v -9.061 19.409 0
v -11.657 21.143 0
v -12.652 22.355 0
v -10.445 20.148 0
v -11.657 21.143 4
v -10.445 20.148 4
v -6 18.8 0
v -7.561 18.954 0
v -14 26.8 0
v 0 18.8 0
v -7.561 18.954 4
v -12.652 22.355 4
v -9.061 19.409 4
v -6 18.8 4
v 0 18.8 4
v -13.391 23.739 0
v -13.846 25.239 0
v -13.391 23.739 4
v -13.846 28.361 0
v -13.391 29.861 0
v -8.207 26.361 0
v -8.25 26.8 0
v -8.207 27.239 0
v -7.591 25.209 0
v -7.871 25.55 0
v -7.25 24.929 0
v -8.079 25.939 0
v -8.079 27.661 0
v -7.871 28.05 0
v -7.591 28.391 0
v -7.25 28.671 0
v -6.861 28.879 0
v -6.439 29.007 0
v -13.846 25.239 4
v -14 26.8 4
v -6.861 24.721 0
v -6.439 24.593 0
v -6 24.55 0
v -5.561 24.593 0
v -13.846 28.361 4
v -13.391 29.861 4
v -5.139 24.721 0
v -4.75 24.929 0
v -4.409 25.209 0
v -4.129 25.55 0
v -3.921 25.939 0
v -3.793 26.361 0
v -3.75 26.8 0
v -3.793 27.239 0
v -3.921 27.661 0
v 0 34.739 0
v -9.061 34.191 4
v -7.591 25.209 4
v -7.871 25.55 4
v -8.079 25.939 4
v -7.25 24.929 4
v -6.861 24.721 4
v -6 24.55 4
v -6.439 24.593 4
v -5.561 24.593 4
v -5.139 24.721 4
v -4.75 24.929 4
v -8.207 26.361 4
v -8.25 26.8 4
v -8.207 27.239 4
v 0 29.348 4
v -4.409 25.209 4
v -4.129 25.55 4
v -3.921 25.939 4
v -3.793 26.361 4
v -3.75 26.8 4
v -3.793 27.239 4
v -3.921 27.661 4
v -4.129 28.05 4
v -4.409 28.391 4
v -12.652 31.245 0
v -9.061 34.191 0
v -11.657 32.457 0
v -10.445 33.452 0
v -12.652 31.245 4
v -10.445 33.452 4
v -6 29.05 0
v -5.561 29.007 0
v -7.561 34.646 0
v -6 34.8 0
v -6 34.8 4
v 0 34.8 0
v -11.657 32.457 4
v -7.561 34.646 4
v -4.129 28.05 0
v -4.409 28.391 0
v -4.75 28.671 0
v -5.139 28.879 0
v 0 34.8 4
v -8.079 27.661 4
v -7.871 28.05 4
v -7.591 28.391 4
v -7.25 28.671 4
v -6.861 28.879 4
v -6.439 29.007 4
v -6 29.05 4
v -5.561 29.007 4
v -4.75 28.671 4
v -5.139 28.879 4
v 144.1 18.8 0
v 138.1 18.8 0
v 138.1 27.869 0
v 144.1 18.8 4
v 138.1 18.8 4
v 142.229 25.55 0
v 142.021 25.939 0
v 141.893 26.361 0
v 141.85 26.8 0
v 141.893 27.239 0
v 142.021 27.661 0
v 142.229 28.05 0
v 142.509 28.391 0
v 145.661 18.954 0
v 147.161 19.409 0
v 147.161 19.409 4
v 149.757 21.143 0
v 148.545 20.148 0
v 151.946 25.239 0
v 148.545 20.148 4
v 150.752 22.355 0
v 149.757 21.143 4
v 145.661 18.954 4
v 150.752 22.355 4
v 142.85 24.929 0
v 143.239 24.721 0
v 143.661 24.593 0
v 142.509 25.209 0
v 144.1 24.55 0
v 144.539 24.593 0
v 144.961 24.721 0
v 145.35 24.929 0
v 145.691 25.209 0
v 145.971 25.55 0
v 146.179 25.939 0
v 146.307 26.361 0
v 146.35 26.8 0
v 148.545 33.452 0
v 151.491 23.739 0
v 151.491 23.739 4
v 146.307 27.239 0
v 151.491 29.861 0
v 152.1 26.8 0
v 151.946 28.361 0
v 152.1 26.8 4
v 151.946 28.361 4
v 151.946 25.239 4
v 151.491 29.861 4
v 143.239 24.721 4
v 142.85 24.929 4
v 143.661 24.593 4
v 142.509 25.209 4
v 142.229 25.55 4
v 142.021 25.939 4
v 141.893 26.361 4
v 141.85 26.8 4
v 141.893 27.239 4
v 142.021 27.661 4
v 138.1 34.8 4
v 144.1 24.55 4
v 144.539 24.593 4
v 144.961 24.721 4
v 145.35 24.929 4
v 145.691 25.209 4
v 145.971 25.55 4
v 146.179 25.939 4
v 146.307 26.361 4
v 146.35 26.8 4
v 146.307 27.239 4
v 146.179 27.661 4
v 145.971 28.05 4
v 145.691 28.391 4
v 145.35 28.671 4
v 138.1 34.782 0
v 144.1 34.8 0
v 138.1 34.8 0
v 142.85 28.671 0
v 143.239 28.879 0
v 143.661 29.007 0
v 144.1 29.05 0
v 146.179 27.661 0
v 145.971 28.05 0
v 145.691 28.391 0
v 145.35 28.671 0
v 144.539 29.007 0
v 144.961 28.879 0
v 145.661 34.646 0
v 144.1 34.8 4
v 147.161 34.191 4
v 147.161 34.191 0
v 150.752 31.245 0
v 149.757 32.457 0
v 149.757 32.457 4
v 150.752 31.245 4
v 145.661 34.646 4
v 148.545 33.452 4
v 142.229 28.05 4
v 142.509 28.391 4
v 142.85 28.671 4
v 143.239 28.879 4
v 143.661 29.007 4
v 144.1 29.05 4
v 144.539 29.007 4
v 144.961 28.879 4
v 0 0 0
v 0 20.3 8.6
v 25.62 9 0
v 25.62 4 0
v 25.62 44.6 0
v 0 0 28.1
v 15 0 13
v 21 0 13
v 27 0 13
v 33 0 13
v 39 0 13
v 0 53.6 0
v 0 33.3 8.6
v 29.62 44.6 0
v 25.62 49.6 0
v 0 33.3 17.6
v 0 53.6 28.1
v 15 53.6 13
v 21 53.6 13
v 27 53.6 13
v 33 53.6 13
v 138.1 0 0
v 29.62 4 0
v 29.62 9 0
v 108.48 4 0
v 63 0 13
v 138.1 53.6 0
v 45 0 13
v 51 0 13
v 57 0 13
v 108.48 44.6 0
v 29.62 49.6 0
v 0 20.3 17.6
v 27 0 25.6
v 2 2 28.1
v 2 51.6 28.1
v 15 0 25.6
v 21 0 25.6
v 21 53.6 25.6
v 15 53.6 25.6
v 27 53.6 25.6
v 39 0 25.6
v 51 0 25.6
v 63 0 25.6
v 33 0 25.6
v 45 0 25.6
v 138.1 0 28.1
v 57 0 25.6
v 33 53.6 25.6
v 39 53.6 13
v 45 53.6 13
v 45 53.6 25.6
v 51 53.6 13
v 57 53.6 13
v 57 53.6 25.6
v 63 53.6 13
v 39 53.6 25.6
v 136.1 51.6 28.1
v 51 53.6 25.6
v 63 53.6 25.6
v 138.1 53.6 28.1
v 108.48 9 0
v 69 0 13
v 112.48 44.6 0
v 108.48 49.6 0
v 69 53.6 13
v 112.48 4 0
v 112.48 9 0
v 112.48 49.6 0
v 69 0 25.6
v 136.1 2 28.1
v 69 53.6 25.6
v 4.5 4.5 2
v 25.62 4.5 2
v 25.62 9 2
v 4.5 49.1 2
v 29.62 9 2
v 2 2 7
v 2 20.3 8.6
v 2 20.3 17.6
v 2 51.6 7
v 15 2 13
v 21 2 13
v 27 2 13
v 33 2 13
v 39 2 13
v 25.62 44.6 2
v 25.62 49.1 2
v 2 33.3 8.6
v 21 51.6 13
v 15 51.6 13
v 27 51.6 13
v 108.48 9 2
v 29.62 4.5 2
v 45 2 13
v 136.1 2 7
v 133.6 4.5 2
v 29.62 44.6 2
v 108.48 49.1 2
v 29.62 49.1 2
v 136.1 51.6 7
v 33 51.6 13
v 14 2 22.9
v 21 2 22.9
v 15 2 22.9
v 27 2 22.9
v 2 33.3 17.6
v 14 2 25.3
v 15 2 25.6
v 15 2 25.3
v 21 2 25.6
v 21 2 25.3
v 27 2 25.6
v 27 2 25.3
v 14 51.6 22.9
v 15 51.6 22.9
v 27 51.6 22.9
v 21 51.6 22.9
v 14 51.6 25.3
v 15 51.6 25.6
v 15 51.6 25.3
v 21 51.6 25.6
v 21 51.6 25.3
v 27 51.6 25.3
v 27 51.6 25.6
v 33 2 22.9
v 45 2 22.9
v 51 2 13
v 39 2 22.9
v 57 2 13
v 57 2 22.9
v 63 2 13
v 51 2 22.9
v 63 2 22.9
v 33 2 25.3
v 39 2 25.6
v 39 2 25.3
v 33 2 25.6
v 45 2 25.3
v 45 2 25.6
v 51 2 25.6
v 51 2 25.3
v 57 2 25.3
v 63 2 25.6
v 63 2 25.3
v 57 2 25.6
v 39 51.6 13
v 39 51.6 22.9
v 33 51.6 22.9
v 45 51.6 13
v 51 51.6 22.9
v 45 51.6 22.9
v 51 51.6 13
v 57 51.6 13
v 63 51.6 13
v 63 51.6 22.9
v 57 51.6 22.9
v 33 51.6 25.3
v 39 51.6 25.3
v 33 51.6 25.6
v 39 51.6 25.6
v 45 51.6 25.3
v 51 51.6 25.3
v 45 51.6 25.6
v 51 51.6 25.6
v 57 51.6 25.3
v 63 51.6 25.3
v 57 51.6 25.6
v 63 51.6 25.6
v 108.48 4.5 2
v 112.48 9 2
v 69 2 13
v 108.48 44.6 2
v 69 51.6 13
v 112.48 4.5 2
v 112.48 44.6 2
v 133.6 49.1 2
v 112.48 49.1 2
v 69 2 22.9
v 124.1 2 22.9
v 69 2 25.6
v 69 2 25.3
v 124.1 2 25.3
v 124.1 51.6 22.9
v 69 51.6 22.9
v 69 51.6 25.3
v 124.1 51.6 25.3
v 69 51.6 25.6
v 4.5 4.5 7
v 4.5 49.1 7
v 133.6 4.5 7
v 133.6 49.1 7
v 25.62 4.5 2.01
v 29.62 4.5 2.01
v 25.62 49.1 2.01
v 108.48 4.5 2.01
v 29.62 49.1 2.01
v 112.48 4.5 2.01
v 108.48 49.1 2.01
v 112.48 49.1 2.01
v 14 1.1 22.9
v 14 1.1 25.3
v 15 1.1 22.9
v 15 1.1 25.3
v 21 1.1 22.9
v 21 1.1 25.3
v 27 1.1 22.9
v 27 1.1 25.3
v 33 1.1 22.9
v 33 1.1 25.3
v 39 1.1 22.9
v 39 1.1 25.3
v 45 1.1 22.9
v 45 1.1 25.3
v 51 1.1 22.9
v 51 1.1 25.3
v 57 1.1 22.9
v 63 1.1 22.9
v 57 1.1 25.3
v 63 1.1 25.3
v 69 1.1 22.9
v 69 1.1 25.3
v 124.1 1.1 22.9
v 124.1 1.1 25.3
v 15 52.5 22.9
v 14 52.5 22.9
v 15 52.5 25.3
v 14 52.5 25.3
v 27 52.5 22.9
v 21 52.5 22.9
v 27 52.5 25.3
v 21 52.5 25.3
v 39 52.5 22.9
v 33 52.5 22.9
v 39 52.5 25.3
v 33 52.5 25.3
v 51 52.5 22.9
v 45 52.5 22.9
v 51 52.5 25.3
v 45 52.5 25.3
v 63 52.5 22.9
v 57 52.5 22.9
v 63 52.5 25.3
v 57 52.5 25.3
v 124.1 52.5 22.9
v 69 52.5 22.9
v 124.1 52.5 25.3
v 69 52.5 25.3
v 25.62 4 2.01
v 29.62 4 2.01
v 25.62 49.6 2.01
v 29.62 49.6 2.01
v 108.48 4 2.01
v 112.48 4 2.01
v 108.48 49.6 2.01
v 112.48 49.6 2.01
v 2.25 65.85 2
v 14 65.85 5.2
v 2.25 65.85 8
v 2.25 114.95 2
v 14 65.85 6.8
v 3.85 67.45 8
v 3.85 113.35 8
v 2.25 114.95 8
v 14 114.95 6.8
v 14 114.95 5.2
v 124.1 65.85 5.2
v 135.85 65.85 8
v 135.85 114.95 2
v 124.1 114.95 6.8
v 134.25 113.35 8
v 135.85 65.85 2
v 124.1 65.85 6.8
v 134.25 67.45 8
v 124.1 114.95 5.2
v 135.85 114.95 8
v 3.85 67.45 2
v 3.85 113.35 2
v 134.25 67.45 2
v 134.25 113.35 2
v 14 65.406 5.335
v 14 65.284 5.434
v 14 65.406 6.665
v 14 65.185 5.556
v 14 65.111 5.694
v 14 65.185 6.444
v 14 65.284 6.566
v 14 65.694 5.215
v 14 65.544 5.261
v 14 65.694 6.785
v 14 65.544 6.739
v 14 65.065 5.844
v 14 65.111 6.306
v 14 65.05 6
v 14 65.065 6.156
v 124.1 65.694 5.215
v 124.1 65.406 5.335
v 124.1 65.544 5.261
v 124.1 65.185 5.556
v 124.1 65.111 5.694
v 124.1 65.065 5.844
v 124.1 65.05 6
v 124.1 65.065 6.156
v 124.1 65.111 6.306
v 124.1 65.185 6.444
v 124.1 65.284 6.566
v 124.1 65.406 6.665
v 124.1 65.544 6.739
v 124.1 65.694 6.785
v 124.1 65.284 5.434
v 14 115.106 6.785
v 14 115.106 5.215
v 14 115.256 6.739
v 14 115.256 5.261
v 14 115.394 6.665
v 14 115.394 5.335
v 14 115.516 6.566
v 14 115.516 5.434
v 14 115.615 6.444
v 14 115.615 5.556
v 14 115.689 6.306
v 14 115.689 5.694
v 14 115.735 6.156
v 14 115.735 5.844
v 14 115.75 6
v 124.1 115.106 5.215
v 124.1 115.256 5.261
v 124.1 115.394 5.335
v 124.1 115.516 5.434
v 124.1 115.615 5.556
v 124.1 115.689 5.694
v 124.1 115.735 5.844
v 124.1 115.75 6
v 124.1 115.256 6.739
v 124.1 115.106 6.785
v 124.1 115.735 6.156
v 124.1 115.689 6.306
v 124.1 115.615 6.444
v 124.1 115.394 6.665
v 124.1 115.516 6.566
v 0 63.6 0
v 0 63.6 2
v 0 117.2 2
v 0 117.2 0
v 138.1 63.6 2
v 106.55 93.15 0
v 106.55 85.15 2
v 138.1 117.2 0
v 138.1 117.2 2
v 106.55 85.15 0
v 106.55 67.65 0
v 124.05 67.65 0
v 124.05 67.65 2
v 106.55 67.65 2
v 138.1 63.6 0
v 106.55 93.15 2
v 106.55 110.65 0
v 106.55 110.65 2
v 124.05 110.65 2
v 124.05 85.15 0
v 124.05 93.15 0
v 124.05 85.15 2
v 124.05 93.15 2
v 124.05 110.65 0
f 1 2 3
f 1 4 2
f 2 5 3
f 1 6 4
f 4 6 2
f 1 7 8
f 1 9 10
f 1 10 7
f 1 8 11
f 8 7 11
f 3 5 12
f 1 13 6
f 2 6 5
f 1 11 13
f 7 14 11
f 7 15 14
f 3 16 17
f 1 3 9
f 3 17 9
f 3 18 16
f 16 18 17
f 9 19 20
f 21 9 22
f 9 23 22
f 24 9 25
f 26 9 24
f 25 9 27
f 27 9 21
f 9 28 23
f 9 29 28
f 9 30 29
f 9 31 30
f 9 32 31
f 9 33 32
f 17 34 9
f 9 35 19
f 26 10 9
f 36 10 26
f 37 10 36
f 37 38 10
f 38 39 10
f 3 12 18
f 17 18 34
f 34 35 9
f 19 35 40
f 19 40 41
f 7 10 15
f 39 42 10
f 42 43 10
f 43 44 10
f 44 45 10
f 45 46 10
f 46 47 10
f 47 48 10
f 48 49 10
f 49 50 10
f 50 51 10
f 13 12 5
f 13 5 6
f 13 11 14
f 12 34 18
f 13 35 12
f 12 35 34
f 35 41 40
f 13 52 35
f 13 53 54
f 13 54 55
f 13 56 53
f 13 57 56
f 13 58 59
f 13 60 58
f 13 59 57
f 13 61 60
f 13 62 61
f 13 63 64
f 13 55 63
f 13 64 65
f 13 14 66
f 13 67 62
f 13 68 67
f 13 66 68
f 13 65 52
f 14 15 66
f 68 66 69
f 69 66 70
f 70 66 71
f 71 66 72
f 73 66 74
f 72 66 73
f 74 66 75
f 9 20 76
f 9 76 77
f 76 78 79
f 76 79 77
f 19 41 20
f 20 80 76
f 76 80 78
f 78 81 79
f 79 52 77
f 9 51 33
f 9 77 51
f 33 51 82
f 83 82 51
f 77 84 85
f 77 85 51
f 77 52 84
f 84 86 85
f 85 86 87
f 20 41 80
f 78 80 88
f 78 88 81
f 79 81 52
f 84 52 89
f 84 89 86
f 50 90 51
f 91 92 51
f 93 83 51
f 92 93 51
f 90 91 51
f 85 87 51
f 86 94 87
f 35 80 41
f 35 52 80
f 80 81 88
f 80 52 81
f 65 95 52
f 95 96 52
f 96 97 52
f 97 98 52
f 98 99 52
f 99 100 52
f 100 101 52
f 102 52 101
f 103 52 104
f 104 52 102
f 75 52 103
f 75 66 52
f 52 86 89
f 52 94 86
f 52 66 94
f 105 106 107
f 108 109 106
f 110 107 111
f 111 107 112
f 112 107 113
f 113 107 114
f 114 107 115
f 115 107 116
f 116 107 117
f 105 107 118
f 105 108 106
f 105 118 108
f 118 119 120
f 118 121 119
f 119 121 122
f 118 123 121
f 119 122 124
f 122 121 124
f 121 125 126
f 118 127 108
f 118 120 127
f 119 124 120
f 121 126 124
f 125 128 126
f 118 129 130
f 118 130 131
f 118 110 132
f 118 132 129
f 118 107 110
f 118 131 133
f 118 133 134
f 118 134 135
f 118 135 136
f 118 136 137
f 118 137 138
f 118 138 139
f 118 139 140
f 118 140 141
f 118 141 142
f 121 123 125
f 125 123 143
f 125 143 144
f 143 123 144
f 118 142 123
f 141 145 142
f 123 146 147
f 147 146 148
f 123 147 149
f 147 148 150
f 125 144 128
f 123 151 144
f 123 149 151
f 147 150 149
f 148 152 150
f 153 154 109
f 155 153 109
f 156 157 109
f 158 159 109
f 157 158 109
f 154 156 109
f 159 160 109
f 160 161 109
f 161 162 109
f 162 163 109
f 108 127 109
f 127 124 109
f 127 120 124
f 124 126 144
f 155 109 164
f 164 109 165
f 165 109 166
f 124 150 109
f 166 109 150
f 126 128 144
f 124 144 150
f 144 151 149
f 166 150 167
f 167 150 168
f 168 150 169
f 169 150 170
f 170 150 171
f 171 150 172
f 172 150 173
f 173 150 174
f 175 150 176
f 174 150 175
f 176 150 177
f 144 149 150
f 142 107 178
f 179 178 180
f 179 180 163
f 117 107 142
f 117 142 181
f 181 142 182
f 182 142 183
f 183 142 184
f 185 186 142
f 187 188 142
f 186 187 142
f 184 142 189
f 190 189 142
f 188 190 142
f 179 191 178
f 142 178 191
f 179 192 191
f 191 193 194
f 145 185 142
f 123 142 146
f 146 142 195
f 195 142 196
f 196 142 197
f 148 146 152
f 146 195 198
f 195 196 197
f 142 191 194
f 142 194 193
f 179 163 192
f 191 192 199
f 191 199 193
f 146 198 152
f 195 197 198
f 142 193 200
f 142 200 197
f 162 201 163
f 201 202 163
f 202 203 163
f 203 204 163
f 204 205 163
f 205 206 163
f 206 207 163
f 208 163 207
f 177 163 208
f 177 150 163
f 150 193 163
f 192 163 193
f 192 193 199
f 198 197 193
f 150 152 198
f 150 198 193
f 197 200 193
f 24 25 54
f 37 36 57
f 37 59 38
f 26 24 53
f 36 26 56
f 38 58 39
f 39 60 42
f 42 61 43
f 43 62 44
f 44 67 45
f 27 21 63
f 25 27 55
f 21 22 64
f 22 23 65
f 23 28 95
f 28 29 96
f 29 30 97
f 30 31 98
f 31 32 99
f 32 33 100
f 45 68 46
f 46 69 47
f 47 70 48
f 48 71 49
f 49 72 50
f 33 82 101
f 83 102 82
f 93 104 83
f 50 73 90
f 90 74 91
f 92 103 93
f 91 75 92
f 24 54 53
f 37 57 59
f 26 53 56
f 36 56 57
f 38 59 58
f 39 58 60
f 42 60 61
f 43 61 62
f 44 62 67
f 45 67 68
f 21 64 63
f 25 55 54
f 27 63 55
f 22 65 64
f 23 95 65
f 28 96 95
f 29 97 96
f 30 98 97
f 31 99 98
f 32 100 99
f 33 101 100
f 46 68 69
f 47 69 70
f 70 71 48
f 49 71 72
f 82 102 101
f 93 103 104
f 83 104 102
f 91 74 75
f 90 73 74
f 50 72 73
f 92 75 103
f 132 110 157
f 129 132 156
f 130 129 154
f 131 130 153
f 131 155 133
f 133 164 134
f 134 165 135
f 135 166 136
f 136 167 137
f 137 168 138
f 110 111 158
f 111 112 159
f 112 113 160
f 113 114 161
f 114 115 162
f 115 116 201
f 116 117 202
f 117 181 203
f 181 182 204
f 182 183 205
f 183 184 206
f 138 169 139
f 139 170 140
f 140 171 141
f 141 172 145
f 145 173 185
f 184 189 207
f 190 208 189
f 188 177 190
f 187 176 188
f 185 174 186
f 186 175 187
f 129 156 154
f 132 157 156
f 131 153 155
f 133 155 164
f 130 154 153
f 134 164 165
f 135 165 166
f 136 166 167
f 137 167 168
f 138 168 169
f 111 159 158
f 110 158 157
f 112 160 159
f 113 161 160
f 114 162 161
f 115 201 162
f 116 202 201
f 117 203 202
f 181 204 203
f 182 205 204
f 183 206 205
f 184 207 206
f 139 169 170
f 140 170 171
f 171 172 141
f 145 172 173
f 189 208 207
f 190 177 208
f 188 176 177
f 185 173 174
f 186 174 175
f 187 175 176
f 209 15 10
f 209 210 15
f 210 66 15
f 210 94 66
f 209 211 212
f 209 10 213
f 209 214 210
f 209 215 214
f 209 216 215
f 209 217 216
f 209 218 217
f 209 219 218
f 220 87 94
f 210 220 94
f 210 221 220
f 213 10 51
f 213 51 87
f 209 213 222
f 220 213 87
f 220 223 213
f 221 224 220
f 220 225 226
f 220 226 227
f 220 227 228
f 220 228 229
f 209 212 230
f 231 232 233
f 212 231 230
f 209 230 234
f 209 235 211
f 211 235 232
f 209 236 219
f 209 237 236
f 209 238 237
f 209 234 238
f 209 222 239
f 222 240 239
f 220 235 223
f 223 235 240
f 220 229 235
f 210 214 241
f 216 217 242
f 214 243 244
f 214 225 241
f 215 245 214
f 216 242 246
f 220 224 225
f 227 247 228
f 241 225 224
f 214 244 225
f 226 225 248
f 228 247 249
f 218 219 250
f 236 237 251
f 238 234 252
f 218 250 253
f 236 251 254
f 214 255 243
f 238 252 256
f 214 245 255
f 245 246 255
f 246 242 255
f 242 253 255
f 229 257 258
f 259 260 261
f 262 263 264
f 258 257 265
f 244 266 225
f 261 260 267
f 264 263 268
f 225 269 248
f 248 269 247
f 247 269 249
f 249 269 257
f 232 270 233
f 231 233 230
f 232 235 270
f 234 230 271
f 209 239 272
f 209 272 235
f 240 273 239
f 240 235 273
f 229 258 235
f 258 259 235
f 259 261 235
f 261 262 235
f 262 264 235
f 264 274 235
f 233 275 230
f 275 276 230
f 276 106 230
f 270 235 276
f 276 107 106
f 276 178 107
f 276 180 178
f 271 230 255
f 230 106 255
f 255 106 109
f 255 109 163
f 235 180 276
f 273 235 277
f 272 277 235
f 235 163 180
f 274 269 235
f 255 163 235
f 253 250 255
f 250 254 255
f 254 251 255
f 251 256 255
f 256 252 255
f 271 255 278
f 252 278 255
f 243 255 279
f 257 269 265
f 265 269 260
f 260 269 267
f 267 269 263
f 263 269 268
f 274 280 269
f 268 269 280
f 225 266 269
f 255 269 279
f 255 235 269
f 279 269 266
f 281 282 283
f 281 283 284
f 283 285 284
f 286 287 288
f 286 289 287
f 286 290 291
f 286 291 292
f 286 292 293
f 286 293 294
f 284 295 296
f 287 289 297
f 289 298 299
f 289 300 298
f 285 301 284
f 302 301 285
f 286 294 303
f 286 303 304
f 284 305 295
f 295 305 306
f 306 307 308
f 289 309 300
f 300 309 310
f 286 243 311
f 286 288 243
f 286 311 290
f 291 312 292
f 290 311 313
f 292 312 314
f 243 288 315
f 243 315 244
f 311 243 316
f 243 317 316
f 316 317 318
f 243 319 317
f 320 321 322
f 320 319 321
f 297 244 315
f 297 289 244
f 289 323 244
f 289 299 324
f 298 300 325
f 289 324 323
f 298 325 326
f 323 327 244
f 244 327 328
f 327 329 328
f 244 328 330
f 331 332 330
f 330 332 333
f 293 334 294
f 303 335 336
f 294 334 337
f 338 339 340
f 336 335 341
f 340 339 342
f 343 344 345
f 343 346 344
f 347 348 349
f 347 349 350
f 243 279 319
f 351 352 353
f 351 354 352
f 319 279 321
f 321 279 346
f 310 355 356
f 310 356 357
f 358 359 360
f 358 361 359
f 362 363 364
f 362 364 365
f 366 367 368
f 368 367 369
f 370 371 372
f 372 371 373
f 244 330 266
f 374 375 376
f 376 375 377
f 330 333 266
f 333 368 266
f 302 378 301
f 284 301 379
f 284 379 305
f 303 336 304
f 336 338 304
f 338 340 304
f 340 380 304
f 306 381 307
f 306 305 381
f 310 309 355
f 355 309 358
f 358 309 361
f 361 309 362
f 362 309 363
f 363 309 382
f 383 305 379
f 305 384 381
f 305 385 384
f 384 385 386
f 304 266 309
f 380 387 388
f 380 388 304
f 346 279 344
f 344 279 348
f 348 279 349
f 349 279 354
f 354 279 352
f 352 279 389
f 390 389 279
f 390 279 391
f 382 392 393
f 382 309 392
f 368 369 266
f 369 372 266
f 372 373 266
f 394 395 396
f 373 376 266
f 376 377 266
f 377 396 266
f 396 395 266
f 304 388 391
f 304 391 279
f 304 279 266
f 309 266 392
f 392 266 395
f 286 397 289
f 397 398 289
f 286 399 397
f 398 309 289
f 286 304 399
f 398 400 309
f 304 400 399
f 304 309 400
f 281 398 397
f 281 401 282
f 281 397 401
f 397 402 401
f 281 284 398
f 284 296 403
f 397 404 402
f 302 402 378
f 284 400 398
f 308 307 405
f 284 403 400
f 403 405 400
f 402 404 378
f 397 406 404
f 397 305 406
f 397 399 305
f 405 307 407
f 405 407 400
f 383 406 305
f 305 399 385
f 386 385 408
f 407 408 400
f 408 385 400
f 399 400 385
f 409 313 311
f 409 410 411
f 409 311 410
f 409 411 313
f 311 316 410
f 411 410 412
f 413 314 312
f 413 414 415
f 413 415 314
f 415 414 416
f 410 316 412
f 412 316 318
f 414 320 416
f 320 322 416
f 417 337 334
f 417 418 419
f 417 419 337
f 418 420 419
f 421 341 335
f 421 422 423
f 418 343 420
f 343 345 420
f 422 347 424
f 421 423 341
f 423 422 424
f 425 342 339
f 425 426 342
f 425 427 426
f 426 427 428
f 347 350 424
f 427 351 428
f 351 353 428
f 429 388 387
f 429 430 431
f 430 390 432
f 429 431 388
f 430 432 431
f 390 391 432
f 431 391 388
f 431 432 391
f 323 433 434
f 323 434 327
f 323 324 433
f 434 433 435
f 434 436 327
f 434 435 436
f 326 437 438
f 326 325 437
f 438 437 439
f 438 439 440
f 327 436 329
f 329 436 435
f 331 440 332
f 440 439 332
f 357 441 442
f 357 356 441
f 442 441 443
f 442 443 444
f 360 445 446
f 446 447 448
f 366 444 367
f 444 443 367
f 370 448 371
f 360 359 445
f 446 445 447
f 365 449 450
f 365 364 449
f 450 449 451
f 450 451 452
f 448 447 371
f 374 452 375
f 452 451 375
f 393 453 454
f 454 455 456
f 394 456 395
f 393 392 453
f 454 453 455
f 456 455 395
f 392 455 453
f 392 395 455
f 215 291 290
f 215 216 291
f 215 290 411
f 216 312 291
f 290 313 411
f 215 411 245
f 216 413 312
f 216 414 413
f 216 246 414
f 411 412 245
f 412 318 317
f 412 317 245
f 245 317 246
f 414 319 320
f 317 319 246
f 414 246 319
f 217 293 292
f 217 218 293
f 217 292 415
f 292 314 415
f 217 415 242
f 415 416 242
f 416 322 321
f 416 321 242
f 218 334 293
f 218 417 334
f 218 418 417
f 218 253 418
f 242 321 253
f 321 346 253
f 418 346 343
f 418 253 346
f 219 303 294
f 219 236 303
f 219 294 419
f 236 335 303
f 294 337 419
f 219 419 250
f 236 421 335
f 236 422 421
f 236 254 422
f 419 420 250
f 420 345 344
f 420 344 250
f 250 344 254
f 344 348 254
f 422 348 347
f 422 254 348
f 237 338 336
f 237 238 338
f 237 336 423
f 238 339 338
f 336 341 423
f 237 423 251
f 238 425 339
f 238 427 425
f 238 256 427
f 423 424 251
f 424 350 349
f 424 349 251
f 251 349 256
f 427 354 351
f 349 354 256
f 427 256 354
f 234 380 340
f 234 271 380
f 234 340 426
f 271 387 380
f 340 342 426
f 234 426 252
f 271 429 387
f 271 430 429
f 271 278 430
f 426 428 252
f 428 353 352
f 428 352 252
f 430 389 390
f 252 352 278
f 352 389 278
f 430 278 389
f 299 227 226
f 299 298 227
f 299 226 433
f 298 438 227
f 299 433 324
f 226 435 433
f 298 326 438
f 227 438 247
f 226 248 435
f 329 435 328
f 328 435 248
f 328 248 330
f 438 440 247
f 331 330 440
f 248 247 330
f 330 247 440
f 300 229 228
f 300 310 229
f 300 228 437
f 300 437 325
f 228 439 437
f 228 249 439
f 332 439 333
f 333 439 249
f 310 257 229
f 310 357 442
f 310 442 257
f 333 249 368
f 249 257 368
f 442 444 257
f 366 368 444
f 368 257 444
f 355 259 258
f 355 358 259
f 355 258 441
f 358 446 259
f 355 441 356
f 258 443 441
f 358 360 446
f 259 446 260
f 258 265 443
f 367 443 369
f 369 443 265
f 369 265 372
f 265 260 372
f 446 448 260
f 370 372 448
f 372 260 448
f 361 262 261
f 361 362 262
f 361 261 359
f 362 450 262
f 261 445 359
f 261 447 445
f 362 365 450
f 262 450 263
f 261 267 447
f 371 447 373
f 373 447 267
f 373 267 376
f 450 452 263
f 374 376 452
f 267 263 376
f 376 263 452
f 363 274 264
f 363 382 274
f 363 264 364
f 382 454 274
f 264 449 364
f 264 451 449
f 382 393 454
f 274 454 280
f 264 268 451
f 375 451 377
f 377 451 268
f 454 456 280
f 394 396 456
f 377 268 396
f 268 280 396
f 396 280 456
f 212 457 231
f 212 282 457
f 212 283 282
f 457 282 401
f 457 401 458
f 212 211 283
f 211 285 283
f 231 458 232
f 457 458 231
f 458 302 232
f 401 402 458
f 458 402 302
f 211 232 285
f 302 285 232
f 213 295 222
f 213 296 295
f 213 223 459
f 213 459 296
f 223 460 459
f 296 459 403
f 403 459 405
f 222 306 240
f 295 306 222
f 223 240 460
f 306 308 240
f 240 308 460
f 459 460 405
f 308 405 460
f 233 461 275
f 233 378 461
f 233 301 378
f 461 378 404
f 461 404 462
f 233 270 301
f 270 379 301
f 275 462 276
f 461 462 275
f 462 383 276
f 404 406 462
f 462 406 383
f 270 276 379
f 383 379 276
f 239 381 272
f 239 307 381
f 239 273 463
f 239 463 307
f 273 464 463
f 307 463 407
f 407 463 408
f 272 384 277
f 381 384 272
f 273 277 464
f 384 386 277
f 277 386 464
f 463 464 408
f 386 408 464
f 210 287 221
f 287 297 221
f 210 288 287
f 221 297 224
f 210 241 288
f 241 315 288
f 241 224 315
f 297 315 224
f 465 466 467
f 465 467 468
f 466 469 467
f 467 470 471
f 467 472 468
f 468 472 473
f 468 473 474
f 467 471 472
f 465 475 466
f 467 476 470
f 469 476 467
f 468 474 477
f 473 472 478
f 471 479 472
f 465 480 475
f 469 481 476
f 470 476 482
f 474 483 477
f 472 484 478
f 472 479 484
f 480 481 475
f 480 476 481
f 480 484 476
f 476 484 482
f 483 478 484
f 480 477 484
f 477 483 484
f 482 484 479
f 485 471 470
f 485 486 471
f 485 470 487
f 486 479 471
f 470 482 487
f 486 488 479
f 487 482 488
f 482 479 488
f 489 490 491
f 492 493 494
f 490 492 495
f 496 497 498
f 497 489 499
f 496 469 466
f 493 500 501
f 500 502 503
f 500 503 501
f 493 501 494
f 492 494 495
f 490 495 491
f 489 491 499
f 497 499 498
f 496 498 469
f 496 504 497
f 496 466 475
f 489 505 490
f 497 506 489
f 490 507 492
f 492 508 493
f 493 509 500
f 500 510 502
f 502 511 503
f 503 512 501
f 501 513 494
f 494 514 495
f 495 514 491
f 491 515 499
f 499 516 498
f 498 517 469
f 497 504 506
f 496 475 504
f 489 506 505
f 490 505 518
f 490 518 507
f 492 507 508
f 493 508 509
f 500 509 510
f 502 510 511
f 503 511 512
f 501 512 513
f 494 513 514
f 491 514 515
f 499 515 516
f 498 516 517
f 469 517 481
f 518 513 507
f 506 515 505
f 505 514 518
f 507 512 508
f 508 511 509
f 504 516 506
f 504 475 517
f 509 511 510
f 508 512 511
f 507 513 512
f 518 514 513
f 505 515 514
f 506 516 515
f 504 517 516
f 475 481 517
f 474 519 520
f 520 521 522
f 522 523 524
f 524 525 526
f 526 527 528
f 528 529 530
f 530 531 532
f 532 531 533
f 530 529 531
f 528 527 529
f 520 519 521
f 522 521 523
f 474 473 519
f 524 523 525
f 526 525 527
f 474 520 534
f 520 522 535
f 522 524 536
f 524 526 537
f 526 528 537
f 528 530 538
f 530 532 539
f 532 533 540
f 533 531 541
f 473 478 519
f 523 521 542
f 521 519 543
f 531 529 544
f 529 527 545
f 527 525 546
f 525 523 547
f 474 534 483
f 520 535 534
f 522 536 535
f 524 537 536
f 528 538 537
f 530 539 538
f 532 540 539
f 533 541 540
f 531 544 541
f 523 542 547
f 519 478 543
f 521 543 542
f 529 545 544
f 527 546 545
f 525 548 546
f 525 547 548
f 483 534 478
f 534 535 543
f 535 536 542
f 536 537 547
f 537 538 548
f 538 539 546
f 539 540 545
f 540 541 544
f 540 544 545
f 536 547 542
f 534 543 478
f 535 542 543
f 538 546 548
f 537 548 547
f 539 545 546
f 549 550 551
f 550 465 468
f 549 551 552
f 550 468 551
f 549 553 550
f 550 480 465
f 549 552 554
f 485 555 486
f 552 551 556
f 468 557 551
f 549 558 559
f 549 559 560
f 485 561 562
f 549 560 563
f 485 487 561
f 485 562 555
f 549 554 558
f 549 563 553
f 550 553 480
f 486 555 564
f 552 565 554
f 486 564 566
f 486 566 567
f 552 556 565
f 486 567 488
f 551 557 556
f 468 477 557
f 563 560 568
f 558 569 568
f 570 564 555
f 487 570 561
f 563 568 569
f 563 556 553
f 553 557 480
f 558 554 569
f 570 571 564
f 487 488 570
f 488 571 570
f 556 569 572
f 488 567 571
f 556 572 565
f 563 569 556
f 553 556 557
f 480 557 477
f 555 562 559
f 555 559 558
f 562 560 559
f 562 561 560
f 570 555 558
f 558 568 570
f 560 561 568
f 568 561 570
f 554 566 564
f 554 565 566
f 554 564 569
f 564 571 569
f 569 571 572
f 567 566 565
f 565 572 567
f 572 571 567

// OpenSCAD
// Desk MITM enclosure — parametric OpenSCAD
// Board: 132.5 x 48 perfboard, ESP32 USB out one end wall, two RJ45 jacks
// facing UP through the lid at the other end, solder pins protruding below.
//
// Coordinates: X = board length (USB end at x=0, RJ45 end at x=max),
//              Y = board width, Z = up. All openings are parametric — print,
//              test-fit, nudge the offending variable, reprint the one part.
//
// Render:  openscad -D part=\"base\" -o base.stl desk-case.scad
//          openscad -D part=\"lid\"  -o lid.stl  desk-case.scad
// Preview: open in OpenSCAD GUI, set `part` below to "base", "lid" or "both".

part = "both";  // "base" | "lid" | "both" (preview)

/* ---------- board ---------- */
board_l      = 132.5;  // perfboard length
board_w      = 48.0;   // perfboard width
board_th     = 1.6;    // perfboard thickness
pins_below   = 5.0;    // clearance under board for solder pins/wires
above_board  = 24.0;   // tallest thing above board top (29 total - ~5 below)

/* ---------- case ---------- */
wall         = 2.0;    // wall thickness
floor_th     = 2.0;
lid_th       = 2.0;
clearance    = 0.8;    // gap around the board (FDM slop; increase if tight)
headroom     = 1.5;    // extra air above the tallest component
lip_h        = 6.0;    // lid skirt depth (longer = more flex for the snap)

/* ---------- lid attachment ---------- */
lid_mode     = "snap";  // "snap" (no fasteners) | "screw" (corner towers)
// snap tuning — reprint the lid and adjust if it's too loose/tight:
snap_bead_d  = 1.6;    // rounded catch bead diameter on the skirt
snap_depth   = 0.9;    // how deep the groove cuts into the base wall
snap_gap     = 0.25;   // skirt-to-wall running clearance (matches skirt offset)

/* ---------- USB opening (end wall at x=0) ---------- */
usb_w        = 13.0;   // opening width
usb_h        = 9.0;    // opening height
usb_y_off    = 0.0;    // sideways offset from board centerline ("fairly centered, but not 100%")
usb_z        = 0.0;    // opening bottom relative to board TOP surface (USB sits just above board)

/* ---------- RJ45 lid openings (jacks face up, near x=max end) ---------- */
// Positions are centers. x measured from the INNER face of the RJ45-end wall
// (i.e. from the far edge of the board), y from the board centerline.
rj45_hole_w  = 17.5;   // hole size along X (jack depth + slop)
rj45_hole_d  = 17.5;   // hole size along Y (jack width + slop)
rj45_a_x     = 12.0;   // jack A center, distance back from board far edge
rj45_a_y     = -11.5;  // jack A center, offset from centerline (negative = one side)
rj45_b_x     = 12.0;   // jack B center
rj45_b_y     = 11.5;   // jack B center

/* ---------- board mounting ---------- */
ledge_w      = 2.5;    // perimeter shelf the board rests on
screw_d      = 2.8;    // pilot hole for M3 self-tappers
screw_head_d = 6.2;    // lid countersink
vent_slots   = true;   // side vents over the ESP32 half
zip_slots    = true;   // zip-tie slots in the base for under-desk mounting

/* ---------- mounting ears (screw to desk underside, floor against the desk) ---------- */
ears         = true;
ear_len      = 13.0;   // how far each ear sticks out past the end wall
ear_w        = 16.0;   // ear width
ear_th       = 4.0;    // ear thickness (= floor plane up)
ear_hole_d   = 4.5;    // wood screw clearance
ear_y_off    = 0.0;    // sideways offset from case centerline (dodge desk frame members)

/* ---------- derived ---------- */
in_l  = board_l + 2*clearance;
in_w  = board_w + 2*clearance;
in_h  = pins_below + board_th + above_board + headroom;
out_l = in_l + 2*wall;
out_w = in_w + 2*wall;
base_h = floor_th + in_h - lip_h;          // lid skirt completes the height
board_z = floor_th + pins_below;           // board underside
board_top = board_z + board_th;

$fn = 32;
eps = 0.01;

// Lid screws live in EXTERNAL corner towers so nothing intrudes into the
// cavity — the board fills the interior wall-to-wall and must stay untouched.
tower_d = 9.0;
corner_pts = [[0, 0], [out_l, 0], [0, out_w], [out_l, out_w]];

module corner_towers() {
  for (p = corner_pts)
    translate([p[0], p[1], 0]) difference() {
      cylinder(d = tower_d, h = base_h);
      translate([0, 0, base_h - 12]) cylinder(d = screw_d, h = 12 + eps);
    }
}

// Snap geometry, symmetric about both centerlines so the lid's 180° flip
// still lines the beads up with the grooves. bead center height (installed):
snap_z    = base_h - lip_h + 2;
snap_x0   = wall + 12;
snap_len  = out_l - 2*(wall + 12);

module base_snap_grooves() {  // cut into the two long walls' inner faces
  for (yy = [[wall - snap_depth, wall + eps],
             [out_w - wall - eps, out_w - wall + snap_depth]])
    translate([snap_x0, yy[0], snap_z - snap_bead_d/2 - 0.4])
      cube([snap_len, yy[1] - yy[0], snap_bead_d + 0.8]);
}

module lid_snap_beads() {  // rounded beads on the skirt outer faces (lid coords)
  z = lid_th + lip_h - 2;  // maps to snap_z once installed
  for (y = [wall + snap_gap, out_w - wall - snap_gap])
    translate([snap_x0, y, z]) rotate([0, 90, 0])
      cylinder(d = snap_bead_d, h = snap_len);
}

module ear(dir) {  // dir: -1 = x=0 end, +1 = x=out_l end
  hole_x = (dir < 0) ? -ear_len + ear_w/2 - 1 : out_l + ear_len - ear_w/2 + 1;
  anchor_x = (dir < 0) ? 0.5 : out_l - 0.5;
  difference() {
    hull() {
      translate([hole_x, out_w/2 + ear_y_off, 0]) cylinder(d = ear_w, h = ear_th);
      translate([anchor_x - 0.5, out_w/2 + ear_y_off - ear_w/2, 0])
        cube([1, ear_w, ear_th]);
    }
    translate([hole_x, out_w/2 + ear_y_off, -eps]) cylinder(d = ear_hole_d, h = ear_th + 2*eps);
  }
}

module base() {
  if (ears) {
    ear(-1);
    ear(1);
  }
  difference() {
    union() {
      // shell
      difference() {
        cube([out_l, out_w, base_h]);
        translate([wall, wall, floor_th]) cube([in_l, in_w, base_h]);
      }
      // board ledge (overlaps floor and walls slightly for clean manifold union)
      difference() {
        translate([wall - 0.1, wall - 0.1, floor_th - 0.1])
          cube([in_l + 0.2, in_w + 0.2, pins_below + 0.1]);
        translate([wall + ledge_w, wall + ledge_w, floor_th - 0.2])
          cube([in_l - 2*ledge_w, in_w - 2*ledge_w, pins_below + 0.4]);
      }
      if (lid_mode == "screw") corner_towers();
    }
    if (lid_mode == "snap") base_snap_grooves();
    // USB opening in the x=0 end wall
    translate([-eps,
               out_w/2 + usb_y_off - usb_w/2,
               board_top + usb_z])
      cube([wall + 2*eps, usb_w, usb_h]);
    // vents over the ESP32 half, both long sides
    if (vent_slots)
      for (y = [-eps, out_w - wall - eps])
        for (x = [15 : 12 : board_l/2])
          translate([x, y, floor_th + pins_below + 6])
            cube([6, wall + 2*eps, base_h - (floor_th + pins_below + 6) - 2.5]);
    // zip-tie slots through the floor near each end
    if (zip_slots)
      for (x = [out_l*0.2, out_l*0.8])
        for (y = [wall + 2, out_w - wall - 2 - 5])
          translate([x - 2, y, -eps]) cube([4, 5, floor_th + 2*eps]);
  }
}

module lid() {
  difference() {
    union() {
      cube([out_l, out_w, lid_th]);
      // corner discs covering the base's external towers (screw mode only)
      if (lid_mode == "screw")
        for (p = corner_pts) translate([p[0], p[1], 0]) cylinder(d = tower_d, h = lid_th);
      // skirt that drops inside the base walls (overlaps plate for clean union)
      difference() {
        translate([wall + 0.25, wall + 0.25, lid_th - 0.1])
          cube([in_l - 0.5, in_w - 0.5, lip_h + 0.1]);
        translate([wall + 0.25 + 1.6, wall + 0.25 + 1.6, lid_th - 0.2])
          cube([in_l - 0.5 - 3.2, in_w - 0.5 - 3.2, lip_h + 0.4]);
      }
      if (lid_mode == "snap") lid_snap_beads();
    }
    // RJ45 openings (jacks face up through the lid)
    for (j = [[rj45_a_x, rj45_a_y], [rj45_b_x, rj45_b_y]])
      translate([out_l - wall - clearance - j[0] - rj45_hole_w/2,
                 out_w/2 + j[1] - rj45_hole_d/2,
                 -eps])
        cube([rj45_hole_w, rj45_hole_d, lid_th + lip_h + 2*eps]);
    // lid screw holes + countersinks (screw mode only)
    if (lid_mode == "screw")
      for (p = corner_pts)
        translate([p[0], p[1], -eps]) {
          cylinder(d = 3.4, h = lid_th + lip_h + 2*eps);
          cylinder(d = screw_head_d, h = 1.6);
        }
  }
}

if (part == "base") base();
if (part == "lid") lid();
if (part == "both") {
  base();
  translate([0, out_w + 10, 0]) lid();
}
